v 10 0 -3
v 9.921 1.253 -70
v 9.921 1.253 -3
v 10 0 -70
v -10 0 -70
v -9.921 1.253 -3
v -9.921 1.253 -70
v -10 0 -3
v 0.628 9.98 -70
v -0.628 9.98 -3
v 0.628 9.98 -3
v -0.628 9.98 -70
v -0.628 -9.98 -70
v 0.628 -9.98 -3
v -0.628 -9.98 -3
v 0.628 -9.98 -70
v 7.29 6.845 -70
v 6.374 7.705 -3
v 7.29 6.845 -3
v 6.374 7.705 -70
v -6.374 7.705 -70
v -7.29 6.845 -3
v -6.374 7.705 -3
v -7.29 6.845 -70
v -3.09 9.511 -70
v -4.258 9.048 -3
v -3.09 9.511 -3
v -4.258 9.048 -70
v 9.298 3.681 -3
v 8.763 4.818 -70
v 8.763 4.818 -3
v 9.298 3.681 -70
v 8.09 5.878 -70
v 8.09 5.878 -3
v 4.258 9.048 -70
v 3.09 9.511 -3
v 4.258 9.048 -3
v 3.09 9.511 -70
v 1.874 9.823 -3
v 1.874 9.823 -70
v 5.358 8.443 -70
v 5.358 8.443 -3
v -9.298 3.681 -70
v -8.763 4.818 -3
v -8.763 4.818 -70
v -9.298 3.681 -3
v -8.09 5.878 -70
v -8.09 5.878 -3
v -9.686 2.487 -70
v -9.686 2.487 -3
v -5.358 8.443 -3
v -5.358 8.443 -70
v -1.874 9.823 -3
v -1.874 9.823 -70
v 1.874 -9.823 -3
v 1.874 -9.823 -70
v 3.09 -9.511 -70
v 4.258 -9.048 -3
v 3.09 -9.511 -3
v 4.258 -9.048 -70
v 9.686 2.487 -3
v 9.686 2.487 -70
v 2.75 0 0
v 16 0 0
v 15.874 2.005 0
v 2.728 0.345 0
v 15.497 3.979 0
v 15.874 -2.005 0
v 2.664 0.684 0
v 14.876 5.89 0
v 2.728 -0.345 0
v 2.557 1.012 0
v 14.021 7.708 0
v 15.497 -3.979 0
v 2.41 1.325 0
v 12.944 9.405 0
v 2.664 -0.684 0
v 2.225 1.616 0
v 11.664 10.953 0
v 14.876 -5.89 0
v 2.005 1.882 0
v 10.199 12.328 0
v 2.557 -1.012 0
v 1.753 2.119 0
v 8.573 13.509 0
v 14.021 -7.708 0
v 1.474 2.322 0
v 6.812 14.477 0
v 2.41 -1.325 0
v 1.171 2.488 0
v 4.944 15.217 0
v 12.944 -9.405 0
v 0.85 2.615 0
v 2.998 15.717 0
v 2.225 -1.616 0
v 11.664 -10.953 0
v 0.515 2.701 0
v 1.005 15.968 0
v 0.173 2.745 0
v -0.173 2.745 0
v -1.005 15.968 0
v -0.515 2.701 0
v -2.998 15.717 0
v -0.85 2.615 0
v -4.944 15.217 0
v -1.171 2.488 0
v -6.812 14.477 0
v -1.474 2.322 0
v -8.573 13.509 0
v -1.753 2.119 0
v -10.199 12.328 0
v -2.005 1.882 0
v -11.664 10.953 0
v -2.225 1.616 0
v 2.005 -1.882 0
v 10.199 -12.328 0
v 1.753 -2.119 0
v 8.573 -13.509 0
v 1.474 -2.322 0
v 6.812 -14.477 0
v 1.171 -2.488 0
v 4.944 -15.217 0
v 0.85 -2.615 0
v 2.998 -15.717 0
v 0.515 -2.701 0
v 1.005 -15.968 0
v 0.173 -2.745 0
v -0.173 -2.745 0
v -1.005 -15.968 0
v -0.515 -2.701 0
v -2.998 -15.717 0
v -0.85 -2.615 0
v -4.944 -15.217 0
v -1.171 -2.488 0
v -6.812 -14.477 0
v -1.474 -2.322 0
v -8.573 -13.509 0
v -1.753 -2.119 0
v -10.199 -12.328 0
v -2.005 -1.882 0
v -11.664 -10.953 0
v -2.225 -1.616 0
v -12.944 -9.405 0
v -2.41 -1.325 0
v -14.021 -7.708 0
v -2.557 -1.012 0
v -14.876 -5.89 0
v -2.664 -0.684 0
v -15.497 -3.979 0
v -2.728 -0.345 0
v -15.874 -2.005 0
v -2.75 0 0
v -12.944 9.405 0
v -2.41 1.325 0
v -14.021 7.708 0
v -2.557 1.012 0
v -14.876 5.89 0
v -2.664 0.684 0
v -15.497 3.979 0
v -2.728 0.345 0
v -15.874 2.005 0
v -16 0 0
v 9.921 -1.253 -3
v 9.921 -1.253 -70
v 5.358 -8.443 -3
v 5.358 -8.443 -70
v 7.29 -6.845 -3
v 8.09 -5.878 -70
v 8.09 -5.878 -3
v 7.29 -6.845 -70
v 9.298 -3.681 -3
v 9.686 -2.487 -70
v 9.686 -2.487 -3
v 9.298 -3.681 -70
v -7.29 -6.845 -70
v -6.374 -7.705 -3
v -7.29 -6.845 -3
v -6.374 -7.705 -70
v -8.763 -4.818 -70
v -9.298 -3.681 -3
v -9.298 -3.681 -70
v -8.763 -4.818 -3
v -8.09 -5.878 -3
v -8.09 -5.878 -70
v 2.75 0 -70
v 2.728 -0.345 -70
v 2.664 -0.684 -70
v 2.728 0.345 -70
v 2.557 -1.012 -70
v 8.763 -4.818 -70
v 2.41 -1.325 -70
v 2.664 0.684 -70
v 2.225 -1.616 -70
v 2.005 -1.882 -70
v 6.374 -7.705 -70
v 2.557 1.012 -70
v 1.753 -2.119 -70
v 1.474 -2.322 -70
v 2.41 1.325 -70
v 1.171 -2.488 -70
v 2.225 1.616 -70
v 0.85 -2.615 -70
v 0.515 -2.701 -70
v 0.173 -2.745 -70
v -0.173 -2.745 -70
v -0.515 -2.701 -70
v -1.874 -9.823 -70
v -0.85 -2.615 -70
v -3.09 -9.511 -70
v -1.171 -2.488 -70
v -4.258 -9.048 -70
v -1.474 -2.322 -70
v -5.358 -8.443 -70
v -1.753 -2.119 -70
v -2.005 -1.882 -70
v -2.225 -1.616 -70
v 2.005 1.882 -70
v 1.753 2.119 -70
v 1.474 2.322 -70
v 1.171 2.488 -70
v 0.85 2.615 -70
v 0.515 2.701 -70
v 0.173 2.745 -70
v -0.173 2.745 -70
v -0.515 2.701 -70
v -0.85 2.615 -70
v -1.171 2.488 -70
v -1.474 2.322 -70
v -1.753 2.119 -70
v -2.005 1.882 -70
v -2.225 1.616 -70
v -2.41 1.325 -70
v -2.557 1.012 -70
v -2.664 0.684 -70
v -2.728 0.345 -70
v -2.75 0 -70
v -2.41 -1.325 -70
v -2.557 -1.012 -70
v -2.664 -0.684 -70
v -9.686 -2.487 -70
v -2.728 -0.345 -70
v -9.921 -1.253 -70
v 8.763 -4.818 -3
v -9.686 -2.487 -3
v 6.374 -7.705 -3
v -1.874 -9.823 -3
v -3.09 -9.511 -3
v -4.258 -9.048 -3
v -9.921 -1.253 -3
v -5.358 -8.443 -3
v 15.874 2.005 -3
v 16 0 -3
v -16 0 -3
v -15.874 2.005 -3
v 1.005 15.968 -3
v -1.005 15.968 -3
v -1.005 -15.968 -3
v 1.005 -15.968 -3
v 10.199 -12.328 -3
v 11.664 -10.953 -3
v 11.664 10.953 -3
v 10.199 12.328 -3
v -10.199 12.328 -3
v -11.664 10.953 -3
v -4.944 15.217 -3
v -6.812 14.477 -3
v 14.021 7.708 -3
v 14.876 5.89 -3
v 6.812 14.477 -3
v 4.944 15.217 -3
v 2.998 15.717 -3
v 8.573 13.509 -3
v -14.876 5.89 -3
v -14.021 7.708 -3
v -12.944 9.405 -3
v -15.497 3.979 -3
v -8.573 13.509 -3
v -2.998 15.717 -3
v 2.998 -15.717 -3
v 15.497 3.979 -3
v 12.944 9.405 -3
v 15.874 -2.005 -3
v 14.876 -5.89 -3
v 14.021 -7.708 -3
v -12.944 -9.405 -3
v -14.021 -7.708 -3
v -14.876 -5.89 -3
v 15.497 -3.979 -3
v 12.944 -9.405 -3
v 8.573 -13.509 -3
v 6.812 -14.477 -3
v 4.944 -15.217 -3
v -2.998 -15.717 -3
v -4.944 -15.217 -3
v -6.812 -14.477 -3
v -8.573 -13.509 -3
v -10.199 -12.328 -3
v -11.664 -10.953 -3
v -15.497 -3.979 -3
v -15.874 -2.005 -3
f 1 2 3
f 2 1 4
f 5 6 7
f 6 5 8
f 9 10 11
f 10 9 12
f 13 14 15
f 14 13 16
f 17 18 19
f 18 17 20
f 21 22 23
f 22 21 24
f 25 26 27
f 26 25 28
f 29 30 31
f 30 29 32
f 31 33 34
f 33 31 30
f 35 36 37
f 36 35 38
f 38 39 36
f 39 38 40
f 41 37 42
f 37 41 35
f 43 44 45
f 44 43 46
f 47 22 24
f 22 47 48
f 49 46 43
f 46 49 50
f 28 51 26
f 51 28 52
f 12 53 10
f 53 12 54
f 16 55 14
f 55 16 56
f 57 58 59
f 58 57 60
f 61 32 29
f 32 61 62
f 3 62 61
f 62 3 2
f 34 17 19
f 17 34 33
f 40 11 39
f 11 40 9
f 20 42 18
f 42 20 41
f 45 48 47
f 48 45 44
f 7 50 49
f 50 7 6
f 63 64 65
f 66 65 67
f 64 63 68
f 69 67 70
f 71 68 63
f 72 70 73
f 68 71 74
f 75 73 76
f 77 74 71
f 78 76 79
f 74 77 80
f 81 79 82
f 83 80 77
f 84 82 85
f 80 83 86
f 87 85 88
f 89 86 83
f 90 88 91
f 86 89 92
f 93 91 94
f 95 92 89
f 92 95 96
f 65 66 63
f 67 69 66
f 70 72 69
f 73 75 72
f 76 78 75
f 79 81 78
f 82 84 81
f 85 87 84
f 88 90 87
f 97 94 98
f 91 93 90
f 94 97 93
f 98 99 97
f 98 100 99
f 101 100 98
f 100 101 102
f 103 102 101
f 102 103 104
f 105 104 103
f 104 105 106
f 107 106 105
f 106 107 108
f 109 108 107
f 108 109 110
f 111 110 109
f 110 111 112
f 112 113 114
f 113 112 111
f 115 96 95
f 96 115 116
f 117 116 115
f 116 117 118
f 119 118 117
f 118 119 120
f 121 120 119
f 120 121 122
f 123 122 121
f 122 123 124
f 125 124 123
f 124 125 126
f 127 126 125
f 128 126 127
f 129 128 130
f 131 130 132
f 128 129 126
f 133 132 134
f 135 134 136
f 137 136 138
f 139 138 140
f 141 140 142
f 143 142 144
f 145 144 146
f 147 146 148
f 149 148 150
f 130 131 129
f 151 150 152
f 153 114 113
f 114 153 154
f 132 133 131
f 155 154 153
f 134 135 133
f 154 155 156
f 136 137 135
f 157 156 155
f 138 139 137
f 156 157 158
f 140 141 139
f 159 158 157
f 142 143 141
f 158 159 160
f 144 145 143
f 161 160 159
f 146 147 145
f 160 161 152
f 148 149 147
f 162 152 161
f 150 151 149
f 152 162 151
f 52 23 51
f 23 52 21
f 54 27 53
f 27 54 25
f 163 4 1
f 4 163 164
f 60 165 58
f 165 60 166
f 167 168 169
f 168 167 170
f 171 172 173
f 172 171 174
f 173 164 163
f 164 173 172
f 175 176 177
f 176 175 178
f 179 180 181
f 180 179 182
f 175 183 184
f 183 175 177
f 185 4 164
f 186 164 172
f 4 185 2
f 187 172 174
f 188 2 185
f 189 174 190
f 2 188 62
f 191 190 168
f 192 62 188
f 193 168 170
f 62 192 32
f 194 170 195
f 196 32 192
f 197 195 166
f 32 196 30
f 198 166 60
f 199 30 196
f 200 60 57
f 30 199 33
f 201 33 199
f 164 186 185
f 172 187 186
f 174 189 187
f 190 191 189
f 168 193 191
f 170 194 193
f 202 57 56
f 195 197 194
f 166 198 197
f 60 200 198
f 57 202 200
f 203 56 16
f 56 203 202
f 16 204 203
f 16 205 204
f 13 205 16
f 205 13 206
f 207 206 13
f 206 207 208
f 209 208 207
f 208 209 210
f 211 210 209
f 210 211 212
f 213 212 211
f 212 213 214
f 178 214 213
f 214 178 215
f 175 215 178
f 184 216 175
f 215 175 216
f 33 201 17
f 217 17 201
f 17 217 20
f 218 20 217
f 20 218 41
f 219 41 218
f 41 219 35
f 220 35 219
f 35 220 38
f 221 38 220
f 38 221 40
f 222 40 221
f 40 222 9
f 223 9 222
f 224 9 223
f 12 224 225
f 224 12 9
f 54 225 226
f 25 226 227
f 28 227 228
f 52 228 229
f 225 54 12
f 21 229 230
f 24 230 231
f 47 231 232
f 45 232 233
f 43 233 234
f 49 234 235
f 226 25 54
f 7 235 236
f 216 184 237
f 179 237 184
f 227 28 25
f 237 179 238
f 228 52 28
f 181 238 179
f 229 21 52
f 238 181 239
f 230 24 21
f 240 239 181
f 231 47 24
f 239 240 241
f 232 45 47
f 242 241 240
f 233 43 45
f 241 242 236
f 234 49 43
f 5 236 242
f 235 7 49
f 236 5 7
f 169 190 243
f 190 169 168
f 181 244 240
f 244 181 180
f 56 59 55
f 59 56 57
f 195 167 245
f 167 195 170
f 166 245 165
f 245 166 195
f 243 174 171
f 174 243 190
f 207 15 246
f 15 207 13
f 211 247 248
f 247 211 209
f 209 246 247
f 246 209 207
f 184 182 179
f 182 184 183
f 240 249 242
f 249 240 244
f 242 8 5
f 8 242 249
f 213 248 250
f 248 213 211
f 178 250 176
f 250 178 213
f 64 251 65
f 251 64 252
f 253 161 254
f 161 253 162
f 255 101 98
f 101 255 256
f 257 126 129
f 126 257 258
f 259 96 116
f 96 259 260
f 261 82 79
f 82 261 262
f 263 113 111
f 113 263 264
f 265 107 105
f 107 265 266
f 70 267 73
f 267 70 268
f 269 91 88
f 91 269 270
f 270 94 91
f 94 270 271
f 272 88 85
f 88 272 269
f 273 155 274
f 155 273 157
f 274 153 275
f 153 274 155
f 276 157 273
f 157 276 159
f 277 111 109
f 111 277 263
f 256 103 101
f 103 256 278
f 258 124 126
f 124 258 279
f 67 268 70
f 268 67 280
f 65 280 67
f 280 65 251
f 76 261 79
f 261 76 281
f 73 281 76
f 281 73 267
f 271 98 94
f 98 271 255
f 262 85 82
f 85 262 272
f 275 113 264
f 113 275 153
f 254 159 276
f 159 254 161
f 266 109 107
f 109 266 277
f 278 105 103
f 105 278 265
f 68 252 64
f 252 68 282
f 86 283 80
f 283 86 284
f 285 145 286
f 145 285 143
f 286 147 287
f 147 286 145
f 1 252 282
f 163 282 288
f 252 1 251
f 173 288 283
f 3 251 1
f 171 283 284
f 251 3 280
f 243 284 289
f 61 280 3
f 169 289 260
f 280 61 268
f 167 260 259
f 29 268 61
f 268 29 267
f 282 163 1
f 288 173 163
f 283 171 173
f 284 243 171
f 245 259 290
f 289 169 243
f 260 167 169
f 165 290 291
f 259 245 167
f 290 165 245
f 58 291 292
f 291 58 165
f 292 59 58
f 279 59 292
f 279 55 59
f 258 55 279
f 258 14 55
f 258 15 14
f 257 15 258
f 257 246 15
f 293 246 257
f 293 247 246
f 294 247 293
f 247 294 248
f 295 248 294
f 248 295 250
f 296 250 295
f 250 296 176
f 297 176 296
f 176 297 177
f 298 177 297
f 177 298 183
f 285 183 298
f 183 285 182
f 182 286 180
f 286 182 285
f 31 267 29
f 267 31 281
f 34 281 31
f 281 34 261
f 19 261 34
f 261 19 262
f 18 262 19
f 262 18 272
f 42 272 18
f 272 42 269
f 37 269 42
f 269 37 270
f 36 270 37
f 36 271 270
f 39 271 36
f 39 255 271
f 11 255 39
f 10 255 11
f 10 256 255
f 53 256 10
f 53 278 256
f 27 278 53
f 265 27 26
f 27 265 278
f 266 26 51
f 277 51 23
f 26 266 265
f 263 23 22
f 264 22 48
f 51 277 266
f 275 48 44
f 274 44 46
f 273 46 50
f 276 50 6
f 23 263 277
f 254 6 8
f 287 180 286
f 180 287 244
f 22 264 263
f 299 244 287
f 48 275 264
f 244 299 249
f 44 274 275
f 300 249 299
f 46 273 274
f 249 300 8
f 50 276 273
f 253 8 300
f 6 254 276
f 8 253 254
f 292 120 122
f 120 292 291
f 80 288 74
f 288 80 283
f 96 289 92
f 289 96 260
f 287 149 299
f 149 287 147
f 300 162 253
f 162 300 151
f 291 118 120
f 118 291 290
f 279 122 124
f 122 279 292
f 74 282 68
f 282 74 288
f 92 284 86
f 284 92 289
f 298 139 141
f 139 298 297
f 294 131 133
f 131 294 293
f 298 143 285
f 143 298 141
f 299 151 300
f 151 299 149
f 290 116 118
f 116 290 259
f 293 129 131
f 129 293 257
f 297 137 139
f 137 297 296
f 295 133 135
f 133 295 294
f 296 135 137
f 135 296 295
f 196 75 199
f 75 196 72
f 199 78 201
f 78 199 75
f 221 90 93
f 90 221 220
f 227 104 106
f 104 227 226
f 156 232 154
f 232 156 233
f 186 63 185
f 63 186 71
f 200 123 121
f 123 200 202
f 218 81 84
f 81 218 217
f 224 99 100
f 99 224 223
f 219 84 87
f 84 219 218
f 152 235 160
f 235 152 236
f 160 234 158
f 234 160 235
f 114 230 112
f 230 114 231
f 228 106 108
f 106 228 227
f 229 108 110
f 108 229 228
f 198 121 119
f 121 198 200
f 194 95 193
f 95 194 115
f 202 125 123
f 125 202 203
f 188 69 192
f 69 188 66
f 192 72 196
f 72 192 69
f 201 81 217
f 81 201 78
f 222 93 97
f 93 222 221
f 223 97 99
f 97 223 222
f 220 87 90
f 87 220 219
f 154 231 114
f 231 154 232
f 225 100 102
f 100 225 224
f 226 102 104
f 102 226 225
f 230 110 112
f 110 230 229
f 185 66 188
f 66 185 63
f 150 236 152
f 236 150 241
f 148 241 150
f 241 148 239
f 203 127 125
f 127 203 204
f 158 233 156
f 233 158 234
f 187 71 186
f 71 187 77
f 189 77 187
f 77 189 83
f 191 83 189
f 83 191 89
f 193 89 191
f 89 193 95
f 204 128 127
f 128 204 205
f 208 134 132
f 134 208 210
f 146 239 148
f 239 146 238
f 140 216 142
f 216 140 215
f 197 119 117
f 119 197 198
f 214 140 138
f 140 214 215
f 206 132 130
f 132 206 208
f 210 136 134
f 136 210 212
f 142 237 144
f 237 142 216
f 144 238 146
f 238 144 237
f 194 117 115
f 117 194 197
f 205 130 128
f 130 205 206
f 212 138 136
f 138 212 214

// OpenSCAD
$fn = 50;


difference() {
	union() {
		translate(v = [0, 0, -70.0000000000]) {
			cylinder(h = 70, r = 10.0000000000);
		}
		translate(v = [0, 0, -3.0000000000]) {
			cylinder(h = 3, r = 16.0000000000);
		}
	}
	union() {
		#translate(v = [0, 0, -70]) {
			cylinder(h = 70, r = 2.7500000000);
		}
	}
}
